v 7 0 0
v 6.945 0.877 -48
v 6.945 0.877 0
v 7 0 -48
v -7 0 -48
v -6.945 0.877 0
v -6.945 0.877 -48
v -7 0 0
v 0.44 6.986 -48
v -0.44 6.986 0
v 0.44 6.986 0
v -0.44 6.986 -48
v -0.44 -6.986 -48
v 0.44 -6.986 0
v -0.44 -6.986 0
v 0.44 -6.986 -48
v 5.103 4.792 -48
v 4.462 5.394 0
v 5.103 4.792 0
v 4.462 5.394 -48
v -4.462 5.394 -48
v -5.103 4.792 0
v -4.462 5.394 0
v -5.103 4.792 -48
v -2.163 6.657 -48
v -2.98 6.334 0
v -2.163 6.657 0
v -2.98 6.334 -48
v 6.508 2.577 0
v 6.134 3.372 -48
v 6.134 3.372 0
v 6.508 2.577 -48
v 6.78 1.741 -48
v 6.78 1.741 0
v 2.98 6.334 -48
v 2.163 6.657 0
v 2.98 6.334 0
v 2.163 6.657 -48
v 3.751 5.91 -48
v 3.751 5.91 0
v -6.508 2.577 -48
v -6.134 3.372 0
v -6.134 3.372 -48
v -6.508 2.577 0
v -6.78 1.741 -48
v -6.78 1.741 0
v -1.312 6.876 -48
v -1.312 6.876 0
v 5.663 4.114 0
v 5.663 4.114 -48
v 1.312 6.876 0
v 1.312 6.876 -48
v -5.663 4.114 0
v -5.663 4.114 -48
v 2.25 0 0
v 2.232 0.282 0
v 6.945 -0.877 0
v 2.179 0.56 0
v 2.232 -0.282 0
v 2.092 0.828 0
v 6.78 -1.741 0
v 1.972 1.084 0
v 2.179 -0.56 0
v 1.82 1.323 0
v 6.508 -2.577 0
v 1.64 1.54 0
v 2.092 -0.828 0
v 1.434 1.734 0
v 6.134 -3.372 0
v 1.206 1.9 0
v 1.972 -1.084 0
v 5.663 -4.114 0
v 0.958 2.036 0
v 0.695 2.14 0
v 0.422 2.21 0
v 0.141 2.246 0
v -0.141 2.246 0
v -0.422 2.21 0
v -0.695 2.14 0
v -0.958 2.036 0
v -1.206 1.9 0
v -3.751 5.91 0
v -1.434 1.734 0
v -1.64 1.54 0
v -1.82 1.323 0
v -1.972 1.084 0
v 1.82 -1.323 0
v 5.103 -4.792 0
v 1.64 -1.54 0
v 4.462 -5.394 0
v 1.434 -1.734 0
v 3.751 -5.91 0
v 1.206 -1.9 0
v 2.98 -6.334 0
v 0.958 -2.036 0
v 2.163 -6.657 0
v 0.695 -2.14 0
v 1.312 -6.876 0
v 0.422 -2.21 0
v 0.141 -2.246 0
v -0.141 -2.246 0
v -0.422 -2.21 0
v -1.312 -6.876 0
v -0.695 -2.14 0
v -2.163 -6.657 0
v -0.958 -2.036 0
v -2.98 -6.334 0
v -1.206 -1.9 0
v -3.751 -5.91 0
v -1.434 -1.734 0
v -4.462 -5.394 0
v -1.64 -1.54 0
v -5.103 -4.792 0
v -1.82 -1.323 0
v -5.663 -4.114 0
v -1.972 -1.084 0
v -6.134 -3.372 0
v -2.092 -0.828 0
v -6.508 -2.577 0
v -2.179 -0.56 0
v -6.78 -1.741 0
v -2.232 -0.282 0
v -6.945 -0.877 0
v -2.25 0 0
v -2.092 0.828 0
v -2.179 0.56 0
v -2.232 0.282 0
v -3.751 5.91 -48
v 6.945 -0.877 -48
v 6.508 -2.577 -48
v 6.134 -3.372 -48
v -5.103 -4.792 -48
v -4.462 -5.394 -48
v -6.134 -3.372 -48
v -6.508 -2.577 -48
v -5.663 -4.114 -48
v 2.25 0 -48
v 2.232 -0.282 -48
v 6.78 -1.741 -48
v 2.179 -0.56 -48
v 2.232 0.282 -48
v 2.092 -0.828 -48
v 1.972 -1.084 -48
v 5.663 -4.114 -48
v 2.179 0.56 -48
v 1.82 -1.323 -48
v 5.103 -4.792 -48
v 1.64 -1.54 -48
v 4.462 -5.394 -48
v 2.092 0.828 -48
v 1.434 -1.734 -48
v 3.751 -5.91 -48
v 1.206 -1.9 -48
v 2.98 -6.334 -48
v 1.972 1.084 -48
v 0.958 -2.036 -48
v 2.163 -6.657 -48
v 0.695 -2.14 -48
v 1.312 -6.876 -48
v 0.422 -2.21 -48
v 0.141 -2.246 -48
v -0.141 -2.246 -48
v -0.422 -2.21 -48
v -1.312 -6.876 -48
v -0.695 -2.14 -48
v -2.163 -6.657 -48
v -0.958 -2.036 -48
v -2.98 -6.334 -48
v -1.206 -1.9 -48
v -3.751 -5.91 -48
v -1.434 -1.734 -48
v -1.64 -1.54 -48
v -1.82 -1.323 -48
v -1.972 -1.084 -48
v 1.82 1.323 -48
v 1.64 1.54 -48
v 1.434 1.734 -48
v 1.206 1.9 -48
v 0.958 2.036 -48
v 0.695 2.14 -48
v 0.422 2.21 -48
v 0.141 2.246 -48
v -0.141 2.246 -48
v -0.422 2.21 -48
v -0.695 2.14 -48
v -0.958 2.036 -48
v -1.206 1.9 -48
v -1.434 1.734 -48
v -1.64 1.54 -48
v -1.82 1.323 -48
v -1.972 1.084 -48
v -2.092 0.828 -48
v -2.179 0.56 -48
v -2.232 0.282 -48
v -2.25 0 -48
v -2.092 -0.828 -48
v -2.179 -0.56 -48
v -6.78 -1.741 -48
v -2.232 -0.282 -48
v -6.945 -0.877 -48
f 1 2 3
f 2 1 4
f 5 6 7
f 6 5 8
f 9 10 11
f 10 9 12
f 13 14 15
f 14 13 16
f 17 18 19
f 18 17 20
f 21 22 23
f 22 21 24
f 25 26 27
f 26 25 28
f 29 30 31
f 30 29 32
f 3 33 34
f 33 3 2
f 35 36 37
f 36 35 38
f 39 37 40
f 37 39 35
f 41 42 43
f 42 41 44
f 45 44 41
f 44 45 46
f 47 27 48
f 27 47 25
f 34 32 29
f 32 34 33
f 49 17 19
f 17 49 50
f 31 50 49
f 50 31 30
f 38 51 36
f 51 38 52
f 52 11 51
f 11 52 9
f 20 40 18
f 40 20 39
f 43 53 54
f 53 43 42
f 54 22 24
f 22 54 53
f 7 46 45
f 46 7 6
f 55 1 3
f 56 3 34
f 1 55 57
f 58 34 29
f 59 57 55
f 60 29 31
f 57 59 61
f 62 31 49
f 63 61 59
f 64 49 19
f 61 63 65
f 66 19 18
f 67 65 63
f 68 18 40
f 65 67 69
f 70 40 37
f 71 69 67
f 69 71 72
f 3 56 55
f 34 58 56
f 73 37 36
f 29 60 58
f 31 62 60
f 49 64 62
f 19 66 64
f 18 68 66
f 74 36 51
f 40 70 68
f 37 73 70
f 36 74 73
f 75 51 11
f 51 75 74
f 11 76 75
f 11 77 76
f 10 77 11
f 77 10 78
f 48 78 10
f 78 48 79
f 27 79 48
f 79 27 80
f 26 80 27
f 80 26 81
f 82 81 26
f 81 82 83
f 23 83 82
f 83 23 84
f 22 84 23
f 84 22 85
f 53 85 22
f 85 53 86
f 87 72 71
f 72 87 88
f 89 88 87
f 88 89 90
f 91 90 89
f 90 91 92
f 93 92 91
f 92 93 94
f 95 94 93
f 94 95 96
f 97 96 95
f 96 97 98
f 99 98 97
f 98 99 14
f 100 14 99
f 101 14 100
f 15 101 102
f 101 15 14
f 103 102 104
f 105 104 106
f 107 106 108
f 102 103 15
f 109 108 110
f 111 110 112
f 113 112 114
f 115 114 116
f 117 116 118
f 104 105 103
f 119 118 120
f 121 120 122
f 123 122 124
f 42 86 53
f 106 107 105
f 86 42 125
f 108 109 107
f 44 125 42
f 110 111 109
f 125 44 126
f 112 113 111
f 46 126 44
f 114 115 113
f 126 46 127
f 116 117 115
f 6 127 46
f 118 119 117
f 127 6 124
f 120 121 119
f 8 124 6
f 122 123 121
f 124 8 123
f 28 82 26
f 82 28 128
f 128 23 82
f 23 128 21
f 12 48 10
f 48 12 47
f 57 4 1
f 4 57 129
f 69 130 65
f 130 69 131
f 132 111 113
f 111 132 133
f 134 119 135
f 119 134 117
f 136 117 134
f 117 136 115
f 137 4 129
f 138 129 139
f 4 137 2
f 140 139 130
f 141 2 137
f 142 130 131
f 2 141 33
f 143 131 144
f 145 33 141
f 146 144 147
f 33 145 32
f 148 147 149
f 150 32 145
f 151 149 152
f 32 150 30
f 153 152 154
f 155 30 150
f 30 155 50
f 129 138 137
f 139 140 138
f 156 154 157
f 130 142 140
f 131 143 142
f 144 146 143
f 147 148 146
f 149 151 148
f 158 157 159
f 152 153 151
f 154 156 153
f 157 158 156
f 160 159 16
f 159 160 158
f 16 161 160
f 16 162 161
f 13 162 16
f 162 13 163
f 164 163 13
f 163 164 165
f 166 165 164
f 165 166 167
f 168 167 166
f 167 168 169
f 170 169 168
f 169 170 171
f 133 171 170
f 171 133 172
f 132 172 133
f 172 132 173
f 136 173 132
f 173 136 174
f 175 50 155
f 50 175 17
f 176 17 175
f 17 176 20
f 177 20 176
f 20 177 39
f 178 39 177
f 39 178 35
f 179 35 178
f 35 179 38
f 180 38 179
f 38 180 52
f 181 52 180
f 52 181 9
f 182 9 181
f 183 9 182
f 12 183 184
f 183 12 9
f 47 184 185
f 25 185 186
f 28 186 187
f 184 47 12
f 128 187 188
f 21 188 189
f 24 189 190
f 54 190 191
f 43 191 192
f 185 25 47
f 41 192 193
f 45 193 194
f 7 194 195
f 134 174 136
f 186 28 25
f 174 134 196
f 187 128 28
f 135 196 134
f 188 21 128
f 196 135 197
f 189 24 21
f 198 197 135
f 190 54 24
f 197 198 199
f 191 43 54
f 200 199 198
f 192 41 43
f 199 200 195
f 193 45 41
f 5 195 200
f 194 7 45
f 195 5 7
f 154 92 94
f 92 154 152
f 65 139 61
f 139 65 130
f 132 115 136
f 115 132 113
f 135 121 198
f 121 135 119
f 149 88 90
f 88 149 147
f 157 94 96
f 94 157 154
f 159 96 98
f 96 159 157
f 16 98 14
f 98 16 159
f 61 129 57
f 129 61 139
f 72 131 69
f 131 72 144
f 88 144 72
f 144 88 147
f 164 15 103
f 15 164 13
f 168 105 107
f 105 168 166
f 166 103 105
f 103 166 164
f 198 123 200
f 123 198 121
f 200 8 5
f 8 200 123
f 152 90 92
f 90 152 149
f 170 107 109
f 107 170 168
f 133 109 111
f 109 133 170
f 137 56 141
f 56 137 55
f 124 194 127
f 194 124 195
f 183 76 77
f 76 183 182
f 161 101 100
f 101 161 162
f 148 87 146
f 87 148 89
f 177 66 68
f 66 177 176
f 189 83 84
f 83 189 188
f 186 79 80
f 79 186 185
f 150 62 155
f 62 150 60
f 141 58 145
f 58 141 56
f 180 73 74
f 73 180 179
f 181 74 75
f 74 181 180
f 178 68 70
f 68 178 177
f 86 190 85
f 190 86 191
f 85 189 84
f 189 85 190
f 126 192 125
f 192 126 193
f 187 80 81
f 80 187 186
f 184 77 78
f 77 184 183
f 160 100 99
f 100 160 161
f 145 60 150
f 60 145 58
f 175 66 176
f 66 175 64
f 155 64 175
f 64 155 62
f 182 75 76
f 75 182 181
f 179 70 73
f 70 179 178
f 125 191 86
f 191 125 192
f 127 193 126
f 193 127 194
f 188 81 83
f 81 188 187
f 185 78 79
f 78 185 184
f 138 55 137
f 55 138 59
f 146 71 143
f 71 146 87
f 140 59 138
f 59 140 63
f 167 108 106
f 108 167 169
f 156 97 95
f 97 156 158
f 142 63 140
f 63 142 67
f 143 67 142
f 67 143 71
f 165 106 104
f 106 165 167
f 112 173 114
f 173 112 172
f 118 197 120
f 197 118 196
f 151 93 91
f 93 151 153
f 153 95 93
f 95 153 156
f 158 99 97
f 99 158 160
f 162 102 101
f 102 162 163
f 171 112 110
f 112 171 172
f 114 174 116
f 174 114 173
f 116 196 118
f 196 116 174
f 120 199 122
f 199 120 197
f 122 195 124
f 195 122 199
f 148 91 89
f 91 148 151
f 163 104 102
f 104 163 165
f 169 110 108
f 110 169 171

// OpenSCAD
$fn = 50;


difference() {
	union() {
		translate(v = [0, 0, -48.0000000000]) {
			cylinder(h = 48, r = 7.0000000000);
		}
		cylinder(h = 0, r = 16.0000000000);
	}
	union() {
		#translate(v = [0, 0, -48]) {
			cylinder(h = 48, r = 2.2500000000);
		}
	}
}
